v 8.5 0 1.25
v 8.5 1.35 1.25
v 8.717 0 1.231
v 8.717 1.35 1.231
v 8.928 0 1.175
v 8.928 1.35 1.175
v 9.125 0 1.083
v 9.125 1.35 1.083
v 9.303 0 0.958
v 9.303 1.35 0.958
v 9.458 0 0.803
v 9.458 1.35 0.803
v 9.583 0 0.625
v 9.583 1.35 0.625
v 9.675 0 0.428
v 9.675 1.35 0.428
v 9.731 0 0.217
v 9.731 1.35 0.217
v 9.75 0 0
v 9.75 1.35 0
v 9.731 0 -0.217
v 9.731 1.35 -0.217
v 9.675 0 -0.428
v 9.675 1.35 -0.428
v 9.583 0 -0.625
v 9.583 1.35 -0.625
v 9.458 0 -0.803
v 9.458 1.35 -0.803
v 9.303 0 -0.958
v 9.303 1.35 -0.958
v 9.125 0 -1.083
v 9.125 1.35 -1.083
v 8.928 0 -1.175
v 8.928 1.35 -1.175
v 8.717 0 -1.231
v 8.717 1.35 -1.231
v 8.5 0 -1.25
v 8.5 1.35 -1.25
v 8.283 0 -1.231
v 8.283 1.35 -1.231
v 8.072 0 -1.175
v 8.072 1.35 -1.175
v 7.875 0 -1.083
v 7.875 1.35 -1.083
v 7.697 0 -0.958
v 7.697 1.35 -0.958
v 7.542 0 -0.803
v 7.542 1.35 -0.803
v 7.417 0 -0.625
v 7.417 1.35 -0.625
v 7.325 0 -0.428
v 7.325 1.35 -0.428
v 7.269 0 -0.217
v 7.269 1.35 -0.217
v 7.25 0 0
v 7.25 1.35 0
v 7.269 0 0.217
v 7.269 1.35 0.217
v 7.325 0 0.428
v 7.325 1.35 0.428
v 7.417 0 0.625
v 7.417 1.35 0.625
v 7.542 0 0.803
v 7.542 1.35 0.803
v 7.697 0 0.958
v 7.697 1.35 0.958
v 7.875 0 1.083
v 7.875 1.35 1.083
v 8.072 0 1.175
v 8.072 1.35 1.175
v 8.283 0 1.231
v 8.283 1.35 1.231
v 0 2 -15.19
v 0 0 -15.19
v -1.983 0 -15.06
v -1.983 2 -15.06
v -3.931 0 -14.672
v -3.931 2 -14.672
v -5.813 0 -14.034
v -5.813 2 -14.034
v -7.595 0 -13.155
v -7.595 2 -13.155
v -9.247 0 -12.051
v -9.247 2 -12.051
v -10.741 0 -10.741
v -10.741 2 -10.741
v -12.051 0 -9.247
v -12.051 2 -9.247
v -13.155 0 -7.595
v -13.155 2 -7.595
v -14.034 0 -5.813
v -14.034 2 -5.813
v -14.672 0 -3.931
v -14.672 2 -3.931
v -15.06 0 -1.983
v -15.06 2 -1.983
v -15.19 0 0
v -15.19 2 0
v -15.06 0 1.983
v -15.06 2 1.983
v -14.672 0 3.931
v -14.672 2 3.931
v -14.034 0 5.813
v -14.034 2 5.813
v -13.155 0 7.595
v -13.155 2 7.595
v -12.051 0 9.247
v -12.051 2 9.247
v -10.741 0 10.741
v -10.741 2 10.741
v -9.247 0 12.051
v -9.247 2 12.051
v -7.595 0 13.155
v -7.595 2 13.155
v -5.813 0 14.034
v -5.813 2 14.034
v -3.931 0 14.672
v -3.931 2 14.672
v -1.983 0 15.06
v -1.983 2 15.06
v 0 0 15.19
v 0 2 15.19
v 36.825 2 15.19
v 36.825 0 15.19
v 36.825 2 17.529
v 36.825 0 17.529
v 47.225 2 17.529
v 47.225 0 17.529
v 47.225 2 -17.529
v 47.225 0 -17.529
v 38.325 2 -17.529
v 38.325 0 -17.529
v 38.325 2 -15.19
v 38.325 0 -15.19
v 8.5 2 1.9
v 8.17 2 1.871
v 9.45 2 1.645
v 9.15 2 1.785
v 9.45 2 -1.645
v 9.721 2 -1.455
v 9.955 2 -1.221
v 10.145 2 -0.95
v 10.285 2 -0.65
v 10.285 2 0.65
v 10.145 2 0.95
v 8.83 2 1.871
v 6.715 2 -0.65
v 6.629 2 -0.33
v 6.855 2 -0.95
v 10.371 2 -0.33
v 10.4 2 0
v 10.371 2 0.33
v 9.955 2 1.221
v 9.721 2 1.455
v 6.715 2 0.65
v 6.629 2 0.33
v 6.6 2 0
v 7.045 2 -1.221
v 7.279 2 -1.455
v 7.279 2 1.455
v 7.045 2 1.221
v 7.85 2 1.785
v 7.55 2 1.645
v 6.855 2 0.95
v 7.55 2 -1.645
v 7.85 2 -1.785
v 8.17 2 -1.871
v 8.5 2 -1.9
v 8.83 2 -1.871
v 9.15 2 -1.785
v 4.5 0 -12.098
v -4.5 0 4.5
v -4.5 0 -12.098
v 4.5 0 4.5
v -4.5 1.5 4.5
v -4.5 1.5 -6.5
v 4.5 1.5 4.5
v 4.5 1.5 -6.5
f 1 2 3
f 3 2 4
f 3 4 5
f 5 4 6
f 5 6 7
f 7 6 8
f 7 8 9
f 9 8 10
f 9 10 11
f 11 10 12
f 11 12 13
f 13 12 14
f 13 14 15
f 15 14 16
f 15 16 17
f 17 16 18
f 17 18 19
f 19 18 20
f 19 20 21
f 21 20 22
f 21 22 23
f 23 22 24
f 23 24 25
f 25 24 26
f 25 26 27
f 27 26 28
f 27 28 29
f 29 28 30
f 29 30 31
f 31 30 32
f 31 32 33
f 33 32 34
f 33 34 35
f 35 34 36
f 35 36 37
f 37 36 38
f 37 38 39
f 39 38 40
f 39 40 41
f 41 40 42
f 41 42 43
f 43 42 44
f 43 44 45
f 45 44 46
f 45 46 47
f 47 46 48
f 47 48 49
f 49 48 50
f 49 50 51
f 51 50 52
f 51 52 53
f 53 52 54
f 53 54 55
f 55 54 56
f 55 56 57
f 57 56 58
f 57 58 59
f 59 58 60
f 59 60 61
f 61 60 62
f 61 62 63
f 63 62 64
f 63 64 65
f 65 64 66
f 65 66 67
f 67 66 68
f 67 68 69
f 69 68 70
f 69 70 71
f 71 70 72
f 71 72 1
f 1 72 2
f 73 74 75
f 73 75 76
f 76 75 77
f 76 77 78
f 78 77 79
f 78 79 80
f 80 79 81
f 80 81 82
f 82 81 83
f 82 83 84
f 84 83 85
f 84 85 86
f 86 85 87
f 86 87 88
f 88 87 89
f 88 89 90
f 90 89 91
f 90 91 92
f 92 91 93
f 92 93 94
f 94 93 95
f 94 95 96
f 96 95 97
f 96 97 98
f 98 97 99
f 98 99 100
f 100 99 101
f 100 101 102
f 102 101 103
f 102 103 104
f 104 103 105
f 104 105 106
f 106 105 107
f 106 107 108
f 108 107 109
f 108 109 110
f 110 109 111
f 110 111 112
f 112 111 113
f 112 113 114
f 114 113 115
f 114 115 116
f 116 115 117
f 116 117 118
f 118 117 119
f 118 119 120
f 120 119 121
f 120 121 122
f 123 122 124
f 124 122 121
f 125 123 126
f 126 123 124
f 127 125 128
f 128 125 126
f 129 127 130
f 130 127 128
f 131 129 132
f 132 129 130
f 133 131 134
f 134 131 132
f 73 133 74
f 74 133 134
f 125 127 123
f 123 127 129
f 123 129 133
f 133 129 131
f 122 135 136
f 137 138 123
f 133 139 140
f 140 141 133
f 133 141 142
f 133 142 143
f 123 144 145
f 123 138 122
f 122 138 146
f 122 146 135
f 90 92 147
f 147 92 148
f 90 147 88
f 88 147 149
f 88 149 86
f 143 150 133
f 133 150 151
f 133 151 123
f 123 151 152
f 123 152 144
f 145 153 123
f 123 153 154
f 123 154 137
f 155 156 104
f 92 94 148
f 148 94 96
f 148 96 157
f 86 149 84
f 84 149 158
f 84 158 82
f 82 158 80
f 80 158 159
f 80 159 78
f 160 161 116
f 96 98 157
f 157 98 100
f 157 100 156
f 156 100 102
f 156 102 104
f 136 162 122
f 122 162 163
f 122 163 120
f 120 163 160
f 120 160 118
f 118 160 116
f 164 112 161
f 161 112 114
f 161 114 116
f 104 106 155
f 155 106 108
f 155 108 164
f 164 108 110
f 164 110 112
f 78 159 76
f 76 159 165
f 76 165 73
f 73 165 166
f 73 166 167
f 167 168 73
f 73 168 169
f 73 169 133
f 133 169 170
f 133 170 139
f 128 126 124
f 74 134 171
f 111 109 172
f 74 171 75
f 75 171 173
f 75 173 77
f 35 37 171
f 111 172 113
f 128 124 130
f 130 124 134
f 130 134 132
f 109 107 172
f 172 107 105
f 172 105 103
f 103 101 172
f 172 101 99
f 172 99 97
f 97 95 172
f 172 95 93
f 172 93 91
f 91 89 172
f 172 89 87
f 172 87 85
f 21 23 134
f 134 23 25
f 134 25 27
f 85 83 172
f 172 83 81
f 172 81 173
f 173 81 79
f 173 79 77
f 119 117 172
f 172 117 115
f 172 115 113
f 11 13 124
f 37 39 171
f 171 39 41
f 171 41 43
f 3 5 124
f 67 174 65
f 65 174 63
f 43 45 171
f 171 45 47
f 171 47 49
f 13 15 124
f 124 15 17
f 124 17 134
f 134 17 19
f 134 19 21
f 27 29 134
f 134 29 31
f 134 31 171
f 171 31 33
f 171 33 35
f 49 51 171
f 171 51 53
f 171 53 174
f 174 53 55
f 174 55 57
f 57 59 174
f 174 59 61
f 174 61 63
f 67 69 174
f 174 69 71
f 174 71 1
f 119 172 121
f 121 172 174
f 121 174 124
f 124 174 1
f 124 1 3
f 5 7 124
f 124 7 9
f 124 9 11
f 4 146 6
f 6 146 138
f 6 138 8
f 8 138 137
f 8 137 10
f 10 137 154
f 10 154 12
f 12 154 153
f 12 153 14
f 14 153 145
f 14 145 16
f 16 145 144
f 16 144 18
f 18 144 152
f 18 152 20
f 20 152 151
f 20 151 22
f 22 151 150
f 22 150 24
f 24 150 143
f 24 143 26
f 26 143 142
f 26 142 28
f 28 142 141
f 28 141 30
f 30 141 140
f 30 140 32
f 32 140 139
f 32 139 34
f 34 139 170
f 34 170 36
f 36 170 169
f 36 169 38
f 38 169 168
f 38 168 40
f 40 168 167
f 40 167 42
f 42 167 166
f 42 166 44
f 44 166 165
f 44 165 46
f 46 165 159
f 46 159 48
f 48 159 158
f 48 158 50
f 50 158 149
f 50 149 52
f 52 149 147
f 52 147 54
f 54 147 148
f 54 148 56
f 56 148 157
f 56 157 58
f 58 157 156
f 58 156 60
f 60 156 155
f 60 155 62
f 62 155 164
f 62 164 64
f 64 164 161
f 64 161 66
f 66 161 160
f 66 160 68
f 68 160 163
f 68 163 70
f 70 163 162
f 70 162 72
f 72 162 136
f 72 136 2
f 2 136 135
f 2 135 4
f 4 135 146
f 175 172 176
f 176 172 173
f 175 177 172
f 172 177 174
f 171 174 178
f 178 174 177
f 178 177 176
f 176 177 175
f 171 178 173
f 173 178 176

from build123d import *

# Parameters (mm, degrees)
BASE_SHAPE_DEPTH            = 2
SCREW_HOLE_SKETCH_R         = 1.25
SCREW_HOLE_DEPTH            = 51.413108579
PCB_CUTOUT_SKETCH_W         = 9
PCB_CUTOUT_SKETCH_H         = 11
CAMERA_PCB_CUTOUT_DEPTH     = 1.5
CAMERA_RIBBON_ROUTING_DEPTH = 9


with BuildPart() as part:
    # Base Shape Sketch → Base Shape (new body)
    with BuildSketch(Plane(origin=(0, 0, 0), x_dir=(1, 0, 0), z_dir=(0, 1, 0))):
        with BuildLine():
            Line((0, 15.19), (38.325, 15.19))
            Line((38.325, 15.19), (38.325, 17.5294293))
            Line((38.325, 17.5294293), (47.225, 17.5294293))
            Line((47.225, 17.5294293), (47.225, -17.5294293))
            Line((47.225, -17.5294293), (36.825, -17.5294293))
            Line((36.825, -17.5294293), (36.825, -15.19))
            Line((36.825, -15.19), (0, -15.19))
            ThreePointArc((0, -15.19), (-15.19, 0), (0, 15.19))
        make_face()
    extrude(amount=BASE_SHAPE_DEPTH)

    # Screw Hole Sketch → Screw Hole (cut, through all)
    with BuildSketch(Plane(origin=(0, 2, 0), x_dir=(1, 0, 0), z_dir=(0, 1, 0))):
        with Locations(Location((8.5, 0, 0), (0, 0, 270))):
            Circle(SCREW_HOLE_SKETCH_R)
    extrude(amount=-SCREW_HOLE_DEPTH, mode=Mode.SUBTRACT)

    # Countersink Sketch → Screw Hole Countersink (revolve, cut)
    with BuildSketch(Plane.XY, mode=Mode.PRIVATE) as screw_hole_countersink_sk:
        Polygon((8.5, 2), (8.5, 0.8), (9.5, 0.8), (9.5, 1.1), (10.4, 2), align=None)
    revolve(screw_hole_countersink_sk.sketch.rotate(Axis((8.5, 2, 0), (0, -1, 0)), 90), axis=Axis((8.5, 2, 0), (0, -1, 0)), mode=Mode.SUBTRACT)

    # PCB Cutout Sketch → Camera PCB Cutout (cut)
    with BuildSketch(Plane.XZ):
        with Locations((0, -1)):
            Rectangle(PCB_CUTOUT_SKETCH_W, PCB_CUTOUT_SKETCH_H)
    extrude(amount=-CAMERA_PCB_CUTOUT_DEPTH, mode=Mode.SUBTRACT)

    # Ribbon Routing Sketch → Camera Ribbon Routing (cut)
    with BuildSketch(Plane.ZY.offset(-4.5)):
        Polygon((-6.5, 1.5), (-12.098076211, 0), (-6.5, 0), align=None)
    extrude(amount=CAMERA_RIBBON_ROUTING_DEPTH, mode=Mode.SUBTRACT)


solid = part.part
